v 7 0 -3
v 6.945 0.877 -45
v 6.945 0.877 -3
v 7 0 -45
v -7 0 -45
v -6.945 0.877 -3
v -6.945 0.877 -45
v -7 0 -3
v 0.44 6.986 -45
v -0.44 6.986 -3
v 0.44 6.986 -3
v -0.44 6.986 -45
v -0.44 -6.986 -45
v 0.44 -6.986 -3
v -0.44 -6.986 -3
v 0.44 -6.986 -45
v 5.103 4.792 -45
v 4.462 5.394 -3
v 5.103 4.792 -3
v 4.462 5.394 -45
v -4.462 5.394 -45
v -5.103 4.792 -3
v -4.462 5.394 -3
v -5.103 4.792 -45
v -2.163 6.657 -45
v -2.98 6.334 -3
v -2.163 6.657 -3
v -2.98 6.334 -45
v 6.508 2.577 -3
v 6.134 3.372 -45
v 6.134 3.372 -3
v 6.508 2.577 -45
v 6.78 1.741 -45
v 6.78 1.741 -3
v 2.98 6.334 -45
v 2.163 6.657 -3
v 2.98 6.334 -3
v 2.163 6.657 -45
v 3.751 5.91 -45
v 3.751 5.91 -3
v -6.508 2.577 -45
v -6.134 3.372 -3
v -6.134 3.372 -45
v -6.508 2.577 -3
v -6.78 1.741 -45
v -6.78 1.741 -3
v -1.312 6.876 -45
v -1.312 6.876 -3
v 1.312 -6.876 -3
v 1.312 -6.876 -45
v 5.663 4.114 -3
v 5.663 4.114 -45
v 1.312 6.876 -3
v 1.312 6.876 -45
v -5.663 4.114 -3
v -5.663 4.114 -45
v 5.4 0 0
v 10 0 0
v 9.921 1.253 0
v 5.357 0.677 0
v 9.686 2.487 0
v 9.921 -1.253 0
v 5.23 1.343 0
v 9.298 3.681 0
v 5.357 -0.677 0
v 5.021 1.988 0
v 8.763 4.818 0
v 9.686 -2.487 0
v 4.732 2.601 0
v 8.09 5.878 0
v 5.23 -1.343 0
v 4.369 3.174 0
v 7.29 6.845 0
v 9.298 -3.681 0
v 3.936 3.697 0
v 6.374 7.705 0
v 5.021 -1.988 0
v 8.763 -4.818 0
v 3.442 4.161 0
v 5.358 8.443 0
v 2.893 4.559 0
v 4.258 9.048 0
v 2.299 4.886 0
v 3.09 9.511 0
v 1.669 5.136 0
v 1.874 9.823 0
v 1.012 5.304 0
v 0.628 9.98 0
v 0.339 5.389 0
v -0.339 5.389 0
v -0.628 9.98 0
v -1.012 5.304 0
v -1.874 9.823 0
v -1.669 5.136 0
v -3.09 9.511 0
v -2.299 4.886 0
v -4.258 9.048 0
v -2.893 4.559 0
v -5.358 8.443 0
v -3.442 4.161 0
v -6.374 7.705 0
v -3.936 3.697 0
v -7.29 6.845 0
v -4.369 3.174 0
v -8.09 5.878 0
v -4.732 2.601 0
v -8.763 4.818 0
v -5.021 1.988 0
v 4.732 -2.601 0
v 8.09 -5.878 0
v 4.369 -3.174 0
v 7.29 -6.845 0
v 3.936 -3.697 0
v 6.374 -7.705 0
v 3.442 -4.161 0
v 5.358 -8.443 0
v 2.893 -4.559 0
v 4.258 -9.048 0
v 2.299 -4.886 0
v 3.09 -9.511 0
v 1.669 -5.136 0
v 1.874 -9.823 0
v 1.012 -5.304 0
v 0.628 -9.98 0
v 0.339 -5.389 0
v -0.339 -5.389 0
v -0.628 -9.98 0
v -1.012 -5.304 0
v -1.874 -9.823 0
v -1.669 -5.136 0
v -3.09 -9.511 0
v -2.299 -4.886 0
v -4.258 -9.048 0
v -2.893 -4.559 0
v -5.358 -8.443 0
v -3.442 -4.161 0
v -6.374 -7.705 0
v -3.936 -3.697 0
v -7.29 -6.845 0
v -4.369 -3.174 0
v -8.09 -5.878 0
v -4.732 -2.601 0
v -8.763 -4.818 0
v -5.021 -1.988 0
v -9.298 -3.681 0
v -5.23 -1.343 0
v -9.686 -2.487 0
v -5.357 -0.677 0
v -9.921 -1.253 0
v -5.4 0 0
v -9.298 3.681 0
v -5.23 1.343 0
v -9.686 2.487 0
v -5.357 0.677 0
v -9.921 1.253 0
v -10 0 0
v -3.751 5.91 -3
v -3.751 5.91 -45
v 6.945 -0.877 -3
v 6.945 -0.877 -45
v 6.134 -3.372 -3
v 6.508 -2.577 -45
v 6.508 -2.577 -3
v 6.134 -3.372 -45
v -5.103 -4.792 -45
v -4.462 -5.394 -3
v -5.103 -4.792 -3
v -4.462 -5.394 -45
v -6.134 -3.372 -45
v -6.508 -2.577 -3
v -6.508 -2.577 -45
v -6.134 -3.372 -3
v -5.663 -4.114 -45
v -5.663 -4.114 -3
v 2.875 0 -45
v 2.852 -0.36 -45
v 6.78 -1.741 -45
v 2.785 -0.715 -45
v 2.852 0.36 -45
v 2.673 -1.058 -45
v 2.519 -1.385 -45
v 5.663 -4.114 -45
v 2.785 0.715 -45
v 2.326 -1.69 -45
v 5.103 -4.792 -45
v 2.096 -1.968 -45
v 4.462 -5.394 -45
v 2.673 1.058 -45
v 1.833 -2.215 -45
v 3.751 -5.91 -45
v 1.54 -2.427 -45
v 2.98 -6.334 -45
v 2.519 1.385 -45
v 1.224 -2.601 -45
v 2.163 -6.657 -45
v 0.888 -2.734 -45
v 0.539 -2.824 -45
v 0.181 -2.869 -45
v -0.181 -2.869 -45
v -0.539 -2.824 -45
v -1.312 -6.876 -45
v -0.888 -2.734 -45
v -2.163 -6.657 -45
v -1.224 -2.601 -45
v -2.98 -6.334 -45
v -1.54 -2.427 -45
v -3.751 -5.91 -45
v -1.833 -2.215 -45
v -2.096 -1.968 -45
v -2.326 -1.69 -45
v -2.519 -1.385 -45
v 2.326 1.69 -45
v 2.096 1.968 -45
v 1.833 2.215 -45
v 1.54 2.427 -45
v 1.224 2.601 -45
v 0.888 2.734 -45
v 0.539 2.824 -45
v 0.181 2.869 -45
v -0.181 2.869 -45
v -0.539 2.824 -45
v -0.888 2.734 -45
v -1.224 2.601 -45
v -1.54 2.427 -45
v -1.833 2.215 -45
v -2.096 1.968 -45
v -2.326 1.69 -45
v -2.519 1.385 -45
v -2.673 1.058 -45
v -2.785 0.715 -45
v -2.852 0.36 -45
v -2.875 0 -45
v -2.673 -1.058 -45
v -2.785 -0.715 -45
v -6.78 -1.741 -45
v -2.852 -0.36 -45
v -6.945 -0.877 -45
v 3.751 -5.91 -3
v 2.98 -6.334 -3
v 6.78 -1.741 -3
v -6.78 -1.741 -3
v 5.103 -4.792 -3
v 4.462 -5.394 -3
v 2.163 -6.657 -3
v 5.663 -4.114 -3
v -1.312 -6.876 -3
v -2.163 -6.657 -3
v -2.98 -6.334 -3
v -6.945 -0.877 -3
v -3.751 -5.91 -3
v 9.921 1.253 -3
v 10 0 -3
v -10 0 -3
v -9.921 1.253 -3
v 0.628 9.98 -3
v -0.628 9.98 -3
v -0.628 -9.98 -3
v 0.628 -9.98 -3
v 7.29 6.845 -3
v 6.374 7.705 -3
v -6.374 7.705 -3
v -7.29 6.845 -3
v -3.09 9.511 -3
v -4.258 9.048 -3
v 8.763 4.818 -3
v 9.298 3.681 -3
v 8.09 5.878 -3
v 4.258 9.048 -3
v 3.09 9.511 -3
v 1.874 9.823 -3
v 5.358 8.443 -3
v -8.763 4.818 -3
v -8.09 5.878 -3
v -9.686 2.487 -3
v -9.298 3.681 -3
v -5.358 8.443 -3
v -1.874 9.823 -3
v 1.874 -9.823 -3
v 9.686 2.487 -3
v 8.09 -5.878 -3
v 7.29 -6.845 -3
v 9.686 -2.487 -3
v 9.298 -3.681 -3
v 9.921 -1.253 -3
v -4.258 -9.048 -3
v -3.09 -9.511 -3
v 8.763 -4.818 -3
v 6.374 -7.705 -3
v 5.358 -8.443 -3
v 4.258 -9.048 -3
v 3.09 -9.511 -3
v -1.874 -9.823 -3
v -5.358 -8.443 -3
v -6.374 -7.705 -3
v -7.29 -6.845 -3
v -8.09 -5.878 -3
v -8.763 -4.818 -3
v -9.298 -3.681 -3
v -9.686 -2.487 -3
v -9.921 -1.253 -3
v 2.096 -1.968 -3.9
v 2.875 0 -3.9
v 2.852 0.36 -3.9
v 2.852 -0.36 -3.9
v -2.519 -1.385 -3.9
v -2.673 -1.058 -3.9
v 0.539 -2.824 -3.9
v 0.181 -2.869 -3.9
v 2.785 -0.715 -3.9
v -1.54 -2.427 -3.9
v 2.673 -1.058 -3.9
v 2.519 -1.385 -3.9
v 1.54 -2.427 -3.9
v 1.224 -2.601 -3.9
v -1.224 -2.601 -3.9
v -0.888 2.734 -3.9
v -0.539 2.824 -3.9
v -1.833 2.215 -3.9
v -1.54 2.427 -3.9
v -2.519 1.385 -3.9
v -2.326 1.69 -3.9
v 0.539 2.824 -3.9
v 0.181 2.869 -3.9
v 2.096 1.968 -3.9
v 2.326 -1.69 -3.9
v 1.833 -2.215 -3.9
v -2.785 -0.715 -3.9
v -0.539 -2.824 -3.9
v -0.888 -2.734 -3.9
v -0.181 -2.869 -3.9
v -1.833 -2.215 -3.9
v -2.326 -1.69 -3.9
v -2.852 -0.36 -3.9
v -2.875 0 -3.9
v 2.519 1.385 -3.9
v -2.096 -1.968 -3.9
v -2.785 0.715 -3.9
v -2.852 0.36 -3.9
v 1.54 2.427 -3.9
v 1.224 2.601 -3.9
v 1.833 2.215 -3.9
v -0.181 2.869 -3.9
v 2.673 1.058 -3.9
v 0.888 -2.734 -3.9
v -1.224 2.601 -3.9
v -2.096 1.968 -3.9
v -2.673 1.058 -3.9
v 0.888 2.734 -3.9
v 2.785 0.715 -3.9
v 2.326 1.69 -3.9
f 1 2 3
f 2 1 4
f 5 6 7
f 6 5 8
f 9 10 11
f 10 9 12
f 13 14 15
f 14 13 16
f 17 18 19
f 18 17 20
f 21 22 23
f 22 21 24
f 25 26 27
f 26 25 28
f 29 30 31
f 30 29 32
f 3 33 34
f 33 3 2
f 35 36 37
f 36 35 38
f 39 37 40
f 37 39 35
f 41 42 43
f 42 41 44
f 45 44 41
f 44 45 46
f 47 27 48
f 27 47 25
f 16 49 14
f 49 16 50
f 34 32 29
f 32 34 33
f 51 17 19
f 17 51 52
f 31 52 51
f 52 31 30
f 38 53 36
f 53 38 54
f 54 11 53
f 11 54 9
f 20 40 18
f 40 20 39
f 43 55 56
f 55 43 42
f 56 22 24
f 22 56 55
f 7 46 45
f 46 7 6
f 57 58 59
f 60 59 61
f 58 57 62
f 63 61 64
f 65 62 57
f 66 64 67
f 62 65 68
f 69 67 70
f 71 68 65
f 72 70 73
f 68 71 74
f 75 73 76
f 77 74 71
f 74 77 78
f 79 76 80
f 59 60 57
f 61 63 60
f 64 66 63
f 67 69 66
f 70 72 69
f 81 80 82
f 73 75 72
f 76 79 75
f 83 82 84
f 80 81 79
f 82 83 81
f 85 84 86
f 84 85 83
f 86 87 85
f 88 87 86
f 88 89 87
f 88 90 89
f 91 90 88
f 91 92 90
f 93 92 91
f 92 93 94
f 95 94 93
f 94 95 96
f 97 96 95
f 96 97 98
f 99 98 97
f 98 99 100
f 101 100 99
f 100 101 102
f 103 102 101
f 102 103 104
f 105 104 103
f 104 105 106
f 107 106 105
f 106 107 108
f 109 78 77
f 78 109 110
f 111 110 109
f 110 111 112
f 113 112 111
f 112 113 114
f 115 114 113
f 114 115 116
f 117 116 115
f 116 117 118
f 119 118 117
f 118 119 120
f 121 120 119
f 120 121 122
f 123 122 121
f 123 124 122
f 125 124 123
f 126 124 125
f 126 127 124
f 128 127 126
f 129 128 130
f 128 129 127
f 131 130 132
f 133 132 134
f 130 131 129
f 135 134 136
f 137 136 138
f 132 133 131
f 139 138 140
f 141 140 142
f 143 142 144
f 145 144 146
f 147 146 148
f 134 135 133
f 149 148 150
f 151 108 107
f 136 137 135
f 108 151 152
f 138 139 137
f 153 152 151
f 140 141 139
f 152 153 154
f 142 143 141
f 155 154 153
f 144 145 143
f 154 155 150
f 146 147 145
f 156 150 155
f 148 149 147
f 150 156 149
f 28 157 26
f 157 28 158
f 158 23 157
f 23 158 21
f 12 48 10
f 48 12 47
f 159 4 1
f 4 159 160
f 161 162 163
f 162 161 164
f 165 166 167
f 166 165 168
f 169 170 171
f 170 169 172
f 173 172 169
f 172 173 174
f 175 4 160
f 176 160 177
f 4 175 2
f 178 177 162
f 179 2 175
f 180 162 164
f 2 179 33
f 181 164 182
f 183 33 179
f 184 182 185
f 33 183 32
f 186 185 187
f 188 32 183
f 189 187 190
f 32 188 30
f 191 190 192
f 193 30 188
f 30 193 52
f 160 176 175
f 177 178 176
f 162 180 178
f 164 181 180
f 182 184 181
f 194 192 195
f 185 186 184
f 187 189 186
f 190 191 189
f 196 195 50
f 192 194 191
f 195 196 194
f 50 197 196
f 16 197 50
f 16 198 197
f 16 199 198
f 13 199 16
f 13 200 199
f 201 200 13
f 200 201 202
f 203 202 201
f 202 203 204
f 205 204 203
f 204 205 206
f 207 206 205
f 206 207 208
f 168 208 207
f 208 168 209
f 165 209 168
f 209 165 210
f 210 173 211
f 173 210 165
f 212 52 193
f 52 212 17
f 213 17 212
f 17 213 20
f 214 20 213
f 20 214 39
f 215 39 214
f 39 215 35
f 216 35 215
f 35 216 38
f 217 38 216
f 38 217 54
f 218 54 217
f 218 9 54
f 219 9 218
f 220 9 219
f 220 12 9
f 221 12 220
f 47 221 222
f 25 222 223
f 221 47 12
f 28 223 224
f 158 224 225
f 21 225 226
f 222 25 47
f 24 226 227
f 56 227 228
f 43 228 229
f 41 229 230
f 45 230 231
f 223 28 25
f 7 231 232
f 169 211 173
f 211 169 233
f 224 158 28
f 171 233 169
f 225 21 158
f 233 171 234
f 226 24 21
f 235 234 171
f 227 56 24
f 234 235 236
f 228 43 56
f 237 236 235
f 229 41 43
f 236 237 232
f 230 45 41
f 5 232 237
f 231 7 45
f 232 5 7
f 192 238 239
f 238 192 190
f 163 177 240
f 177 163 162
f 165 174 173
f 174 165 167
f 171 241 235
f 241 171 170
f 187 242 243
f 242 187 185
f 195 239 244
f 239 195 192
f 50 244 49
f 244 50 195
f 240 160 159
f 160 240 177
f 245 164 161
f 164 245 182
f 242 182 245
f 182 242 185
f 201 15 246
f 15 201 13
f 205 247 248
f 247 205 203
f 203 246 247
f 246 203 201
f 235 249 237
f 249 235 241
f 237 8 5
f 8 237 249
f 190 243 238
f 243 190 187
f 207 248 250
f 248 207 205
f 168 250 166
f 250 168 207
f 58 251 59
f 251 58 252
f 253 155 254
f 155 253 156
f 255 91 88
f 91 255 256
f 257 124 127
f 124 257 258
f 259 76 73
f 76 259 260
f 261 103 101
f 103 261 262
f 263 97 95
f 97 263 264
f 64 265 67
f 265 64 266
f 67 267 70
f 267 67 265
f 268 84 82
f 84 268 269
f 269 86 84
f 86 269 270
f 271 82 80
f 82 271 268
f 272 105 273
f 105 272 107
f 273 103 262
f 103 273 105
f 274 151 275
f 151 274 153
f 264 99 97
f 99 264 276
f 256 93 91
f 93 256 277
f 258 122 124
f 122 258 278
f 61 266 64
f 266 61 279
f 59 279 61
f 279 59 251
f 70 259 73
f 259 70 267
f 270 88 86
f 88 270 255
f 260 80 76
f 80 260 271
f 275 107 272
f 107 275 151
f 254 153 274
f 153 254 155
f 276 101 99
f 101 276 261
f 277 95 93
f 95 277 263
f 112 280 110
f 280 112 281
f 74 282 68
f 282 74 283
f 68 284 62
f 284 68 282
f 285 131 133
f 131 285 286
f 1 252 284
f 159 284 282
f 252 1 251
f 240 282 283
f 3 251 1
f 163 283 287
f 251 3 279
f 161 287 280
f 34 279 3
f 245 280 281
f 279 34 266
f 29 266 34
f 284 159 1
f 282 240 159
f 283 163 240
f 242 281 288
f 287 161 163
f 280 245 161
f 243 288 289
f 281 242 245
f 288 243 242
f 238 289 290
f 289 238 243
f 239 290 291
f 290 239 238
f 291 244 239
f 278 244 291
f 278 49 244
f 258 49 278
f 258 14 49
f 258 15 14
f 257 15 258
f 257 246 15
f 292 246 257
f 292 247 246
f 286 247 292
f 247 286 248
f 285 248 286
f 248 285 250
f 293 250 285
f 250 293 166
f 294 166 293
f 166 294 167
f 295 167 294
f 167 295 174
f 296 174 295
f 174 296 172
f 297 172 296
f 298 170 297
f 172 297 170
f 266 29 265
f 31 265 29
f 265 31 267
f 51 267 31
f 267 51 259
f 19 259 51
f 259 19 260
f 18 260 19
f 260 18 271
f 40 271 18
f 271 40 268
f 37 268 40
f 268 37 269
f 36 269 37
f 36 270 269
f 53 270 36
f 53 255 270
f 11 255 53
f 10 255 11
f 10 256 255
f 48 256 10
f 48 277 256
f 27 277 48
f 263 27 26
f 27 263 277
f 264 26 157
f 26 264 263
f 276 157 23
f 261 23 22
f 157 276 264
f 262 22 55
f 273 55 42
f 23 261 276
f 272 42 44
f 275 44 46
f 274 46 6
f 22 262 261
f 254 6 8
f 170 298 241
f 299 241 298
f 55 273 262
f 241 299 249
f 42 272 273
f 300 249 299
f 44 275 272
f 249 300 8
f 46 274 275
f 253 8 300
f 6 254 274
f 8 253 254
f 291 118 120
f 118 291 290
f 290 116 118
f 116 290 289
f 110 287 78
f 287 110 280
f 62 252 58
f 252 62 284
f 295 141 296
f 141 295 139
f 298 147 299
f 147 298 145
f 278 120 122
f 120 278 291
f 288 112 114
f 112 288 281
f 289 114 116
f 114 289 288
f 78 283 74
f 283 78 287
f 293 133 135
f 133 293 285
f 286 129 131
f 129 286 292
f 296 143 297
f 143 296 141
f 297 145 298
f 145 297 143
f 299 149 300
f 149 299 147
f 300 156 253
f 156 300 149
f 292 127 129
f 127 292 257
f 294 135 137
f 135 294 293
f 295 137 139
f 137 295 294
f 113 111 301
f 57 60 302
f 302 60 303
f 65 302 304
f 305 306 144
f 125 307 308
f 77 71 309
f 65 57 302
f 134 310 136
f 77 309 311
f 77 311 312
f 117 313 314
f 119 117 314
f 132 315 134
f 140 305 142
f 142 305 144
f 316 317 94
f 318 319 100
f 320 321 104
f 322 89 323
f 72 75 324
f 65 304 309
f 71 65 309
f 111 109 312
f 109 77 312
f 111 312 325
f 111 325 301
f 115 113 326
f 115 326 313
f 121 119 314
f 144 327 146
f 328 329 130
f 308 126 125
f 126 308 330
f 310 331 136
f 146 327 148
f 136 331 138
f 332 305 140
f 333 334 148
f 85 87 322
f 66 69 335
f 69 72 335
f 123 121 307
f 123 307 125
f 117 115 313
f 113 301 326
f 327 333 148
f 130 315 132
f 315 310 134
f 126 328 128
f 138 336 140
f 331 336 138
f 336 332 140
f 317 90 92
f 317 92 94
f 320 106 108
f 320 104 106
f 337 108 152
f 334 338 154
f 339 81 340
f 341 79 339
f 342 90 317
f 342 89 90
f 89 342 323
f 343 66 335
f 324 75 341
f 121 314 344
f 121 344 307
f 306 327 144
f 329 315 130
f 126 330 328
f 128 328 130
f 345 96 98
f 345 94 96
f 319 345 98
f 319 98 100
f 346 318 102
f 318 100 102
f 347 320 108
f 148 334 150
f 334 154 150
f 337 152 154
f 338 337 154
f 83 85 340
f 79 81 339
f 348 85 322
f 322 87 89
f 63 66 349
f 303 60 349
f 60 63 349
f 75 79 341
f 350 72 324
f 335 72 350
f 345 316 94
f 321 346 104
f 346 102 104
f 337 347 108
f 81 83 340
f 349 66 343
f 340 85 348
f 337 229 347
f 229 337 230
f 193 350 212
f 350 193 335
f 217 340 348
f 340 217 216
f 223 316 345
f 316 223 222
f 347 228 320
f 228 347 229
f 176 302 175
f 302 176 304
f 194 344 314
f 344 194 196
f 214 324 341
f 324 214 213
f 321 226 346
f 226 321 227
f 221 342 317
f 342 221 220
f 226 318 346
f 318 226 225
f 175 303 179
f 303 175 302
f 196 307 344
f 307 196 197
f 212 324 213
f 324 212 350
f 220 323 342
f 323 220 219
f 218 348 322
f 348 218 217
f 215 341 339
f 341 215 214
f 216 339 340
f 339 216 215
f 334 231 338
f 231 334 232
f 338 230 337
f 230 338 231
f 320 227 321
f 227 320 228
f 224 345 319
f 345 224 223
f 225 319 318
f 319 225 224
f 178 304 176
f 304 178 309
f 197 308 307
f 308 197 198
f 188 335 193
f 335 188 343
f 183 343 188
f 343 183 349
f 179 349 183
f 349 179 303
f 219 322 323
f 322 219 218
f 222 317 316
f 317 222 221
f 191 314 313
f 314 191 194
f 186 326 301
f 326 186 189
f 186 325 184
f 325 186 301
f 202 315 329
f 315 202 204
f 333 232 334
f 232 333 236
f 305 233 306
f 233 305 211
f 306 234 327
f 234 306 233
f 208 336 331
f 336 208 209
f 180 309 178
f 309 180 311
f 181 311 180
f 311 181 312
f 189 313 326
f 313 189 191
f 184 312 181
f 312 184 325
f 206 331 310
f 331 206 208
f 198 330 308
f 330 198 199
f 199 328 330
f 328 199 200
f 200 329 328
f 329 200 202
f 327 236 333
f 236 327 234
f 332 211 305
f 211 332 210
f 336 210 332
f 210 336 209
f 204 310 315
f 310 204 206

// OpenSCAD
$fn = 50;


difference() {
	union() {
		translate(v = [0, 0, -45.0000000000]) {
			cylinder(h = 45, r = 7.0000000000);
		}
		translate(v = [0, 0, -3.0000000000]) {
			cylinder(h = 3, r = 10.0000000000);
		}
	}
	union() {
		translate(v = [0, 0, 0]) {
			rotate(a = [0, 0, 0]) {
				difference() {
					union() {
						#translate(v = [0, 0, -45.0000000000]) {
							cylinder(h = 45, r = 2.6000000000);
						}
						#translate(v = [0, 0, -3.9000000000]) {
							cylinder(h = 3.9000000000, r1 = 2.8750000000, r2 = 5.4000000000);
						}
						#translate(v = [0, 0, -45.0000000000]) {
							cylinder(h = 45, r = 2.8750000000);
						}
						#translate(v = [0, 0, -45.0000000000]) {
							cylinder(h = 45, r = 2.6000000000);
						}
					}
					union();
				}
			}
		}
	}
}
